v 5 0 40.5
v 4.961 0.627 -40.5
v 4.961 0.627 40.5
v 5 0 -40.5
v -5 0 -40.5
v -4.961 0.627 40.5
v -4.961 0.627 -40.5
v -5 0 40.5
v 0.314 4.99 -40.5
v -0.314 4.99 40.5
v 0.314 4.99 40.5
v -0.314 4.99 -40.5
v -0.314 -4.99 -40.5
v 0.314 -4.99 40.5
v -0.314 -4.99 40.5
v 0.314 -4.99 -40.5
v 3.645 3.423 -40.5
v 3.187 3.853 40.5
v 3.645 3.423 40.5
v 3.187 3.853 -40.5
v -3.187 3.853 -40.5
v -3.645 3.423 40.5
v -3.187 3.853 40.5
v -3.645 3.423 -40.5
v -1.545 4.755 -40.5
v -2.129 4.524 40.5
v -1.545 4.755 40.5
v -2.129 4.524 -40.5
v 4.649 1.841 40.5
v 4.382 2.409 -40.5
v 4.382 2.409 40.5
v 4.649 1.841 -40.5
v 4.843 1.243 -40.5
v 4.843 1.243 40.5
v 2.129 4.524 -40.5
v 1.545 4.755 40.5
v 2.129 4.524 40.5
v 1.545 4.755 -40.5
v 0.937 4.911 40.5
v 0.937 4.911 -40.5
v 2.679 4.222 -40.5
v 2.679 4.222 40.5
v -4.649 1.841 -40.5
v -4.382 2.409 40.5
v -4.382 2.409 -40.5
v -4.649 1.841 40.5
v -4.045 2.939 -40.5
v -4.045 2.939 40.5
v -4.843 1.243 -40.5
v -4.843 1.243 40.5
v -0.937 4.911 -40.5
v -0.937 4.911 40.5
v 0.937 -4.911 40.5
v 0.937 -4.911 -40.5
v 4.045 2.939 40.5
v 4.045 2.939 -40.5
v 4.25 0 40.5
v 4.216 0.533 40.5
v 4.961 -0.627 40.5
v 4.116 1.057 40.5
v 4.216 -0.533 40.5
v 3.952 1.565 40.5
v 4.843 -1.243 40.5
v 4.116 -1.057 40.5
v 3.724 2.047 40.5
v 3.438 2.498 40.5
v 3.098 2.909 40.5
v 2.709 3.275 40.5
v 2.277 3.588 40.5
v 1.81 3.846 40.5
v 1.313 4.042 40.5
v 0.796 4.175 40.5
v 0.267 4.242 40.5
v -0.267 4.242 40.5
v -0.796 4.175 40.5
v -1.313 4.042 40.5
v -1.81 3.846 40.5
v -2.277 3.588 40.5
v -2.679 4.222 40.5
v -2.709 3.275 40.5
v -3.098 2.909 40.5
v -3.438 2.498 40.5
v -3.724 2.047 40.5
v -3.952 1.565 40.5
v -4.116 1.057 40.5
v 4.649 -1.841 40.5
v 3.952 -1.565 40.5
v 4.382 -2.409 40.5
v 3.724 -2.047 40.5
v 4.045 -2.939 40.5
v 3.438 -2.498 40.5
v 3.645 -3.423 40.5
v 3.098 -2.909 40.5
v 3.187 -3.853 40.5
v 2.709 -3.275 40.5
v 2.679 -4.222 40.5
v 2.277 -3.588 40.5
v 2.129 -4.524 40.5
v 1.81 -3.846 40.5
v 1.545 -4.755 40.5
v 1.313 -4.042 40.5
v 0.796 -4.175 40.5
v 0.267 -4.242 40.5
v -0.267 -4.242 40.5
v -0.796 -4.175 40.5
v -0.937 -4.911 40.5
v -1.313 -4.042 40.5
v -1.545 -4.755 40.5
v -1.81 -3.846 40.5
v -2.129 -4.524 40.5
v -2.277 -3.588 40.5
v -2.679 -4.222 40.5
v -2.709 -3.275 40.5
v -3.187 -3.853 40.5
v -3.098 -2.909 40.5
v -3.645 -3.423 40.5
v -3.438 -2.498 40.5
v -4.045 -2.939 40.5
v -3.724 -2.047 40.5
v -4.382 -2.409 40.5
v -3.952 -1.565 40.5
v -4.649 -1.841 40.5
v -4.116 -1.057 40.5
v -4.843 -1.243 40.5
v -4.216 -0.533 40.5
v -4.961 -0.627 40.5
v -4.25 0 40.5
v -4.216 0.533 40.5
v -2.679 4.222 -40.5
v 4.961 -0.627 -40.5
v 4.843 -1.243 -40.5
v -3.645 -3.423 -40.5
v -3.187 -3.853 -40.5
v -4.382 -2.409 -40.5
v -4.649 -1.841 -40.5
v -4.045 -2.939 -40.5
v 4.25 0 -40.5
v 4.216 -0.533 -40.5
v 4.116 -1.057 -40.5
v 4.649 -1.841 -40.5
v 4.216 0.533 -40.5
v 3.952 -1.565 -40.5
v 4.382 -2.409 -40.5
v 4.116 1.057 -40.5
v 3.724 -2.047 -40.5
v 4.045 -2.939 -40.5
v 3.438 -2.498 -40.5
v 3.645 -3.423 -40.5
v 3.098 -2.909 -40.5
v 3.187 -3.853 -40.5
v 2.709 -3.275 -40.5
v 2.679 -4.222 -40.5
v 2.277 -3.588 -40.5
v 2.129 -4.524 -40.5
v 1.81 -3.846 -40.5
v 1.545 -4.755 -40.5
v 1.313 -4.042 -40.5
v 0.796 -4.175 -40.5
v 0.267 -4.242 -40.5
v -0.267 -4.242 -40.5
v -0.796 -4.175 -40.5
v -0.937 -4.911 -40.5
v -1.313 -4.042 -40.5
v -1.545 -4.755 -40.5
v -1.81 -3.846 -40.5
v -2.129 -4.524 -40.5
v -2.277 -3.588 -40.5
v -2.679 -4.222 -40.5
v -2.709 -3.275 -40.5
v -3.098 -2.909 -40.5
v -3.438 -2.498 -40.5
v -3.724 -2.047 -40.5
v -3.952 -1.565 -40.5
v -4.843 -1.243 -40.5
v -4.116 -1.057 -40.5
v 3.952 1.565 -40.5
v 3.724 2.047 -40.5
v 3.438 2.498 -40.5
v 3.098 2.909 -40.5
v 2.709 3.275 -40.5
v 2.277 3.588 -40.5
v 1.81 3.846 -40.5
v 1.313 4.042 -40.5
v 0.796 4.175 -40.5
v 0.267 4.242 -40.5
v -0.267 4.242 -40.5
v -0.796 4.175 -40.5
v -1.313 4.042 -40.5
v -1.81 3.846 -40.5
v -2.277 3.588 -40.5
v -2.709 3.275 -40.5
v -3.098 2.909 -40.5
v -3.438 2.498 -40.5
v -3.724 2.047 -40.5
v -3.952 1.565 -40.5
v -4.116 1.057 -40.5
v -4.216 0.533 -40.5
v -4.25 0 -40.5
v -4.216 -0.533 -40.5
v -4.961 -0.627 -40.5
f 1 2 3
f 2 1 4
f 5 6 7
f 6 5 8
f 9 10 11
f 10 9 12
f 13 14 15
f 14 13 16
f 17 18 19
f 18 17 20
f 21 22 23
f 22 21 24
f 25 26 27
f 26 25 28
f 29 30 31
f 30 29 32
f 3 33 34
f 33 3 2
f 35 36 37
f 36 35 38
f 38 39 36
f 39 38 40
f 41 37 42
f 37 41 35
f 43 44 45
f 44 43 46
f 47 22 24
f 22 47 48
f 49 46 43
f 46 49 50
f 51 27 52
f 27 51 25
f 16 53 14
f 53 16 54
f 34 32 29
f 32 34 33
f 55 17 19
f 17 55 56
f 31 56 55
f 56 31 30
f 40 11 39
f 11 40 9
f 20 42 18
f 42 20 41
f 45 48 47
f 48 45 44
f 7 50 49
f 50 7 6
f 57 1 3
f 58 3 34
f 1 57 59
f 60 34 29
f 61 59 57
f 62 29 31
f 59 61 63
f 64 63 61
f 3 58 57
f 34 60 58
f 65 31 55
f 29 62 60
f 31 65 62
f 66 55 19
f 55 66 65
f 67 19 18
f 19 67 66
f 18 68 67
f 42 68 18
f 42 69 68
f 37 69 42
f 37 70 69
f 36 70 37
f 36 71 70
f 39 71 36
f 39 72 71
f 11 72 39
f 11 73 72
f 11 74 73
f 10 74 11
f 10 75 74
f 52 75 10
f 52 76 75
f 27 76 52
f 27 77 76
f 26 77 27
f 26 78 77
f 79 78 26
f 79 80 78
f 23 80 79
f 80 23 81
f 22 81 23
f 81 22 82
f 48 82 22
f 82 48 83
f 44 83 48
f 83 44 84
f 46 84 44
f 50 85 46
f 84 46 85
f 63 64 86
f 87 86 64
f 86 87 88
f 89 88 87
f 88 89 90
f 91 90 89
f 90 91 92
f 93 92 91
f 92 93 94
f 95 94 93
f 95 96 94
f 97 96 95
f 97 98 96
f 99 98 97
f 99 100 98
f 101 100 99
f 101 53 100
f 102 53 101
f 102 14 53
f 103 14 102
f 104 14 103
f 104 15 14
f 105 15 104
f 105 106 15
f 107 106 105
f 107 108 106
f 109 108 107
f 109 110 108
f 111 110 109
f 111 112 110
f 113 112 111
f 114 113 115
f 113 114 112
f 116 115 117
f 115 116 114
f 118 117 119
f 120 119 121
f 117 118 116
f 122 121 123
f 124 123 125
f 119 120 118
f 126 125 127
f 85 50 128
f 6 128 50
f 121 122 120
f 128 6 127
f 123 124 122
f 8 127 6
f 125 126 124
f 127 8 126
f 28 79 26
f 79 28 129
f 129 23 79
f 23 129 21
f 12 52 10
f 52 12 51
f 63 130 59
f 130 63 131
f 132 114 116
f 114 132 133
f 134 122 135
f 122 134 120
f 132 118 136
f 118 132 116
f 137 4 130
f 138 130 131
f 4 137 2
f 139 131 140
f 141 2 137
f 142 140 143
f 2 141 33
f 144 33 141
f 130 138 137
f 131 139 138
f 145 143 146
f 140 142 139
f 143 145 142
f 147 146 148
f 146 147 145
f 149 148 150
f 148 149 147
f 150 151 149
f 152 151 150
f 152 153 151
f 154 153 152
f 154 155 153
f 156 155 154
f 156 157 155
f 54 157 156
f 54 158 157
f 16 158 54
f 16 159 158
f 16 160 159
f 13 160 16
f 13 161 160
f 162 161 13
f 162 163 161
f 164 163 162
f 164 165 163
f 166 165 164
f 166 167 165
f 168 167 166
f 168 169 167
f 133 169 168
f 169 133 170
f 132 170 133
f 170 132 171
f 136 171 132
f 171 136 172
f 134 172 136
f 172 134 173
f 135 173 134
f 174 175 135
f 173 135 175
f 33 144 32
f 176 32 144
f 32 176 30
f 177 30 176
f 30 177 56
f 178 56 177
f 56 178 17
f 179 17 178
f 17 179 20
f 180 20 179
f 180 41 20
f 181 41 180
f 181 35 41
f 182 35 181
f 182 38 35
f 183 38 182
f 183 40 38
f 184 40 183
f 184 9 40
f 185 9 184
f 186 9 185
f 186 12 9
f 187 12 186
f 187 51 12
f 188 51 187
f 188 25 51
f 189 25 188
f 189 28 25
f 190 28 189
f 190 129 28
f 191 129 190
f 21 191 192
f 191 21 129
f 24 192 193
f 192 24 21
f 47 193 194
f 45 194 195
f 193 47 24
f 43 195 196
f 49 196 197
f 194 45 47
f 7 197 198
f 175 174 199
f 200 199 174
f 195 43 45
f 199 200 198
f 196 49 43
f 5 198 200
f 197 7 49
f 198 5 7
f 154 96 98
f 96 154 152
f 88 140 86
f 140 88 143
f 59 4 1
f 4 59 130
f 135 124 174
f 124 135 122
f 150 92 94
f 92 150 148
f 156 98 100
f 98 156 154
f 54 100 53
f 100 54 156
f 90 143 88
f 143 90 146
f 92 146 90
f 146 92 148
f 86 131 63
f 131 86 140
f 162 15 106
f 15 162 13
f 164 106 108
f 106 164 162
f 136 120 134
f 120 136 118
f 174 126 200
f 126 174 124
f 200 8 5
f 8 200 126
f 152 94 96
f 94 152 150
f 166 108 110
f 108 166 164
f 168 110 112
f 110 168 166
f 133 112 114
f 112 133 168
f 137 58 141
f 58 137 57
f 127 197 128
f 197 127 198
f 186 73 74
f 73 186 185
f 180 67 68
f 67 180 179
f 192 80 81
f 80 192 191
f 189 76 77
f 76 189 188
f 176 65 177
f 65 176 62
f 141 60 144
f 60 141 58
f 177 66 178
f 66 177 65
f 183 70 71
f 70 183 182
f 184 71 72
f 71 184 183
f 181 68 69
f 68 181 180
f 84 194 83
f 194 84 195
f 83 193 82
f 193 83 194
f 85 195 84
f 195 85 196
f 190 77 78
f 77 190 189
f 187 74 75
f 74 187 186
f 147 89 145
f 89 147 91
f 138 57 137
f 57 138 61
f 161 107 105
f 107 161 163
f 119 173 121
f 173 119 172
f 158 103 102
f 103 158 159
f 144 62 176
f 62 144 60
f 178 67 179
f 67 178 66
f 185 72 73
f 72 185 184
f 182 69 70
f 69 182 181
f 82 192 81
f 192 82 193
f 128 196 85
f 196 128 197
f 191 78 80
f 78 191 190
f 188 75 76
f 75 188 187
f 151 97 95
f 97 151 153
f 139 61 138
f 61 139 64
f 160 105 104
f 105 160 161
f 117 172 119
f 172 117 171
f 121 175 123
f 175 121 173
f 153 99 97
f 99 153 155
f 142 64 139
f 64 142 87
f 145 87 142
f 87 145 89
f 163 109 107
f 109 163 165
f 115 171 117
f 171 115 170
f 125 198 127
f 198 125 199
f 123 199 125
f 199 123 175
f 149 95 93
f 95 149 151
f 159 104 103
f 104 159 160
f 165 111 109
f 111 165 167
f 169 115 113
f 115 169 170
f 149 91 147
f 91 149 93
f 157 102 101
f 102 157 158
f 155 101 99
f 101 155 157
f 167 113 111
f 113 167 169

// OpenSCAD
$fn = 50;


difference() {
	union() {
		translate(v = [0, 0, -40.5000000000]) {
			cylinder(h = 81, r = 5.0000000000);
		}
	}
	union() {
		translate(v = [0, 0, -100.0000000000]) {
			cylinder(h = 200, r = 4.2500000000);
		}
	}
}
